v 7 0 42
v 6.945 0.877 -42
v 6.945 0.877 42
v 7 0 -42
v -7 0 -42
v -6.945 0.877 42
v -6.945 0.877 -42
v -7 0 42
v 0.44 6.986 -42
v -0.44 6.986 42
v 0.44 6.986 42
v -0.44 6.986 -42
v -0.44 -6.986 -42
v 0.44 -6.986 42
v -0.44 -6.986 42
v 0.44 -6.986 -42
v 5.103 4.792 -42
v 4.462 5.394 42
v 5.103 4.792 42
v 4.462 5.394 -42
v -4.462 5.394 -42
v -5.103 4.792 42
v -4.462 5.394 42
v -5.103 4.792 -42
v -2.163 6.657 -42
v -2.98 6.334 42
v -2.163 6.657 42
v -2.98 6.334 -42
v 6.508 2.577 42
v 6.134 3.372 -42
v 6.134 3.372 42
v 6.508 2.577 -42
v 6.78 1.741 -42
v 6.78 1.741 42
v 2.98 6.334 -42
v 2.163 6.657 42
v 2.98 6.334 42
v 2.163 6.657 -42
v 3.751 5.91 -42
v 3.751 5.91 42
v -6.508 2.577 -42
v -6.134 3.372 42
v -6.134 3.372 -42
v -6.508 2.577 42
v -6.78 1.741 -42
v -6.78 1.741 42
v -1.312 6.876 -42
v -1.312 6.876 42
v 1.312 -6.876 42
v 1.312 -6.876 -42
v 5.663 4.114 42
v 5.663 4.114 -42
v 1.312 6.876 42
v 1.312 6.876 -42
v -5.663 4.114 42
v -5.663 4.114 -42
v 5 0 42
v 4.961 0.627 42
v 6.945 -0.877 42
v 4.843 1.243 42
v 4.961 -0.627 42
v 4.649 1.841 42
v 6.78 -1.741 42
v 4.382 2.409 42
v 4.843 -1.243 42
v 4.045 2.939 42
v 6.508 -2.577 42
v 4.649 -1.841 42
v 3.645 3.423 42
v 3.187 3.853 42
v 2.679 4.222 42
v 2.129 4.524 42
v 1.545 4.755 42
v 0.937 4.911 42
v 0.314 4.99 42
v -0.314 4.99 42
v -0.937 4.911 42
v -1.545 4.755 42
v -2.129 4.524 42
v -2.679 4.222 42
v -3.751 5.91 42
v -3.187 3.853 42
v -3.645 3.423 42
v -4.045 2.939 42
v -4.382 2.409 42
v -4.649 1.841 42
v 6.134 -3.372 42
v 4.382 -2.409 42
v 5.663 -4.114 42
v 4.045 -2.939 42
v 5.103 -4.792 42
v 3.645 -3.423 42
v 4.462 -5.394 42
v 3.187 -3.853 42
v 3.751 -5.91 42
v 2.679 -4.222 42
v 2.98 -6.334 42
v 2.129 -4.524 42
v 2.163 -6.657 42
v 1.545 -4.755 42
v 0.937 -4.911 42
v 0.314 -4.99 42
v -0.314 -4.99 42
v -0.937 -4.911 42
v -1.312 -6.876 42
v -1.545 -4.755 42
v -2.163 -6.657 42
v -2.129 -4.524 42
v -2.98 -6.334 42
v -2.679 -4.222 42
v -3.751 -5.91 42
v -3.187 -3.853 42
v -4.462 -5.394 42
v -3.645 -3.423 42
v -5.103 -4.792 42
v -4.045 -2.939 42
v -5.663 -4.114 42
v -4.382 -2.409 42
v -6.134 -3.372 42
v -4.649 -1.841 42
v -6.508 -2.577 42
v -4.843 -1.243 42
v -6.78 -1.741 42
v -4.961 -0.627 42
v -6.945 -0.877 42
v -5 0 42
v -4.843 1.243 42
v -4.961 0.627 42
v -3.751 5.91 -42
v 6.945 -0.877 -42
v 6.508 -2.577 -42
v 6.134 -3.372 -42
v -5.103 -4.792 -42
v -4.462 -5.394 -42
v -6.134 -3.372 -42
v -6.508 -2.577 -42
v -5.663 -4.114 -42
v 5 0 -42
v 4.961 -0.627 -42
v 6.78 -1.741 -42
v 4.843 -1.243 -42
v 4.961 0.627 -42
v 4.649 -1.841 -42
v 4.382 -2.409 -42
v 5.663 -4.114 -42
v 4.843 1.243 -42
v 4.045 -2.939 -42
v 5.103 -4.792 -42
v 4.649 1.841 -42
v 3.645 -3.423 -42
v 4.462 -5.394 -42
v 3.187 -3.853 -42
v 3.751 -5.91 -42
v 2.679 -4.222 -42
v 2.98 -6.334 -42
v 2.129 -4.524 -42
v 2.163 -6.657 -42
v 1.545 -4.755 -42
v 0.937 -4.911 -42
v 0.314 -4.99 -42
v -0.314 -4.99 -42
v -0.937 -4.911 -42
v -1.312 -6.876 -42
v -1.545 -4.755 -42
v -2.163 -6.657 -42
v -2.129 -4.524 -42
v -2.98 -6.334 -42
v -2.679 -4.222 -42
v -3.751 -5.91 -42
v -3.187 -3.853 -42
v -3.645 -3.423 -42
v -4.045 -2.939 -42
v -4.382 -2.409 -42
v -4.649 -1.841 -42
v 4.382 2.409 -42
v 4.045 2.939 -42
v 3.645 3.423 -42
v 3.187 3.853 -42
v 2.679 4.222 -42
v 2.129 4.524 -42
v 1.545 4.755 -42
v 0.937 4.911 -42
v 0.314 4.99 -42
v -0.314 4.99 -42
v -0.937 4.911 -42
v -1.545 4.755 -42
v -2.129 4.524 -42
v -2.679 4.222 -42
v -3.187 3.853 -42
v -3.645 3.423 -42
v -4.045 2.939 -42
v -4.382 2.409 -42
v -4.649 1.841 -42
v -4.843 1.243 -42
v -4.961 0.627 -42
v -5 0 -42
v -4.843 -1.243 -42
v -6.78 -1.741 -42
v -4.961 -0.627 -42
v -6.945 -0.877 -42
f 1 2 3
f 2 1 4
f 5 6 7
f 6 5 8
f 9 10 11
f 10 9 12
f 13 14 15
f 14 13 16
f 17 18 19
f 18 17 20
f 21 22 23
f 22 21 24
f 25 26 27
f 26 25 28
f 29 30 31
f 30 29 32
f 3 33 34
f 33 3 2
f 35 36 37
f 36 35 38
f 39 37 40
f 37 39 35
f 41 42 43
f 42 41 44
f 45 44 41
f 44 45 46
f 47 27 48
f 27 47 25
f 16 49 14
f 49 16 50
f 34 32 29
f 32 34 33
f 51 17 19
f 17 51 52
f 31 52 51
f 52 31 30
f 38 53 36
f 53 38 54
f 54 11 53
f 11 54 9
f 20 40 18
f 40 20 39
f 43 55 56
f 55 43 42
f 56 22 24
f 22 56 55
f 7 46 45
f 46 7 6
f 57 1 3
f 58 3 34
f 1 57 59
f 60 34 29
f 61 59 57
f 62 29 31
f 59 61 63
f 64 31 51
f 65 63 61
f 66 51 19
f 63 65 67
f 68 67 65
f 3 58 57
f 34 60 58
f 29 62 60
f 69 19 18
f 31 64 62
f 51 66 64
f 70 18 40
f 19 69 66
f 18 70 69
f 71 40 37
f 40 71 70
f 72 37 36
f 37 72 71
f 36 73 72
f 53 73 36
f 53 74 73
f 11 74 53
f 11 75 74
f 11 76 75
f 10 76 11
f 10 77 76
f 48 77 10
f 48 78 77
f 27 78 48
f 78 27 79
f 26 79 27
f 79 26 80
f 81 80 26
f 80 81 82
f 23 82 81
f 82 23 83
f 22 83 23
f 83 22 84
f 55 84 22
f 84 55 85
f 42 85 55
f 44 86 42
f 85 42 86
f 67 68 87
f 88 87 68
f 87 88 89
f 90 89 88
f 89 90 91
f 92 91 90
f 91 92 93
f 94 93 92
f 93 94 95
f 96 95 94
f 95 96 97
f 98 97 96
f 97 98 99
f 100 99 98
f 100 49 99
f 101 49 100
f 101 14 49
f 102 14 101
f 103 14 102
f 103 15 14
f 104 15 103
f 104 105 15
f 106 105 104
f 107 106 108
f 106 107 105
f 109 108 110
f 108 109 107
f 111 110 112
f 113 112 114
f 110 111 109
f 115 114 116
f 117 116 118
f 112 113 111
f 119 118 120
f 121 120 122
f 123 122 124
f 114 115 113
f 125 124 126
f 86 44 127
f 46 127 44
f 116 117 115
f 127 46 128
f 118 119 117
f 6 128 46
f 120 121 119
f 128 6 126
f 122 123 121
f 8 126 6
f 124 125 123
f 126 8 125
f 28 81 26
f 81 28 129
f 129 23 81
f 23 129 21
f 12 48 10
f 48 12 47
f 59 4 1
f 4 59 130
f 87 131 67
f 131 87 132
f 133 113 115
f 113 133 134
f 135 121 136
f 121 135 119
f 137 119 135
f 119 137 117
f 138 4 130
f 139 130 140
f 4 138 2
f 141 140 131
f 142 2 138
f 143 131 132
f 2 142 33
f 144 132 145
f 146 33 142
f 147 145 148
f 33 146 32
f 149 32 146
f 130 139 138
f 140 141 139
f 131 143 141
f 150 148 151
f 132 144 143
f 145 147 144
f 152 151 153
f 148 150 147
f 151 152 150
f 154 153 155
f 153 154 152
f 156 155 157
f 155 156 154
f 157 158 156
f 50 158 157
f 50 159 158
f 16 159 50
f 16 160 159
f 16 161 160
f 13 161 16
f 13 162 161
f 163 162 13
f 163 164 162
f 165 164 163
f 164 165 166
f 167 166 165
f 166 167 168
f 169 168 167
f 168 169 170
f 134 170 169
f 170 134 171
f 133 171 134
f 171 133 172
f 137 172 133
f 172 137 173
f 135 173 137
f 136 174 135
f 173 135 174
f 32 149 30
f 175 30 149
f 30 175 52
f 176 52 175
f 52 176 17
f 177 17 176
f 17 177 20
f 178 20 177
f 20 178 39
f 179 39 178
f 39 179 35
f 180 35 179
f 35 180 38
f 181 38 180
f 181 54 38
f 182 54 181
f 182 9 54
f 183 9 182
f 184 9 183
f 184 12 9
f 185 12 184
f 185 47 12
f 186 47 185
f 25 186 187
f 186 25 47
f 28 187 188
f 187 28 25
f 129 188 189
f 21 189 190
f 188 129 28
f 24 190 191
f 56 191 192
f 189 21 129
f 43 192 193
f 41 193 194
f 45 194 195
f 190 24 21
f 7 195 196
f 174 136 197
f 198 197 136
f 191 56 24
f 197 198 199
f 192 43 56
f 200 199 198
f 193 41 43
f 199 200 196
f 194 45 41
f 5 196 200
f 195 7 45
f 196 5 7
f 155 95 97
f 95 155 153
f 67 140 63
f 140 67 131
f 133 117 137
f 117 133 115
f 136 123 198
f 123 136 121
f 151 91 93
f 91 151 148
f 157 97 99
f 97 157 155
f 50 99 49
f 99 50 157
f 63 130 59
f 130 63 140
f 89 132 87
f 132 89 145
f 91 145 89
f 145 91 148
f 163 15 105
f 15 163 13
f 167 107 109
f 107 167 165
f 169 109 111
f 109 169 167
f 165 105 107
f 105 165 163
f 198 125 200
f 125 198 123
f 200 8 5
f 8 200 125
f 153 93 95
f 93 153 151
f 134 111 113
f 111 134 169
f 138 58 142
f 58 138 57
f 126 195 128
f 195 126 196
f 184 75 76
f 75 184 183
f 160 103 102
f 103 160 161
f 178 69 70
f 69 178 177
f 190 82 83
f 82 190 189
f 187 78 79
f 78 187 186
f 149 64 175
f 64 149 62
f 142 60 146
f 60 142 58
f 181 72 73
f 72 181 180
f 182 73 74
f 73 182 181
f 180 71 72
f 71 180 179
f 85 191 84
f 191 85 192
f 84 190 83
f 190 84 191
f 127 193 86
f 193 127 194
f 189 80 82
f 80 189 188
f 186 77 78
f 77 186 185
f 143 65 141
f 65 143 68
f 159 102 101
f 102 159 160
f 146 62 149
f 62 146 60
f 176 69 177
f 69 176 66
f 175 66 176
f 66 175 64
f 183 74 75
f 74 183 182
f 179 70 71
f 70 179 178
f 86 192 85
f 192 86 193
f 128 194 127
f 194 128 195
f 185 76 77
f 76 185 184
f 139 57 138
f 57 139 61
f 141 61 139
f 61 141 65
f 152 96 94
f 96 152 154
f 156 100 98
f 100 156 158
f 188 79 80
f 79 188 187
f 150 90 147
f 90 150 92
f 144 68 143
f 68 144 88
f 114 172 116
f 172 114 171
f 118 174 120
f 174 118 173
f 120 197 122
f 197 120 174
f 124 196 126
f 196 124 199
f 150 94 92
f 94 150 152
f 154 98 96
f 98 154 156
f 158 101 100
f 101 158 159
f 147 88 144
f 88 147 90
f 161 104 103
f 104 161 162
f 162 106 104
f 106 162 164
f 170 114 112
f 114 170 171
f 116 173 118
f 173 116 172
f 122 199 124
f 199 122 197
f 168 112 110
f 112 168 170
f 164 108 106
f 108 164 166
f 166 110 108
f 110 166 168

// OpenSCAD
$fn = 50;


difference() {
	union() {
		translate(v = [0, 0, -42.0000000000]) {
			cylinder(h = 84, r = 7.0000000000);
		}
	}
	union() {
		translate(v = [0, 0, -100.0000000000]) {
			cylinder(h = 200, r = 5.0000000000);
		}
	}
}
